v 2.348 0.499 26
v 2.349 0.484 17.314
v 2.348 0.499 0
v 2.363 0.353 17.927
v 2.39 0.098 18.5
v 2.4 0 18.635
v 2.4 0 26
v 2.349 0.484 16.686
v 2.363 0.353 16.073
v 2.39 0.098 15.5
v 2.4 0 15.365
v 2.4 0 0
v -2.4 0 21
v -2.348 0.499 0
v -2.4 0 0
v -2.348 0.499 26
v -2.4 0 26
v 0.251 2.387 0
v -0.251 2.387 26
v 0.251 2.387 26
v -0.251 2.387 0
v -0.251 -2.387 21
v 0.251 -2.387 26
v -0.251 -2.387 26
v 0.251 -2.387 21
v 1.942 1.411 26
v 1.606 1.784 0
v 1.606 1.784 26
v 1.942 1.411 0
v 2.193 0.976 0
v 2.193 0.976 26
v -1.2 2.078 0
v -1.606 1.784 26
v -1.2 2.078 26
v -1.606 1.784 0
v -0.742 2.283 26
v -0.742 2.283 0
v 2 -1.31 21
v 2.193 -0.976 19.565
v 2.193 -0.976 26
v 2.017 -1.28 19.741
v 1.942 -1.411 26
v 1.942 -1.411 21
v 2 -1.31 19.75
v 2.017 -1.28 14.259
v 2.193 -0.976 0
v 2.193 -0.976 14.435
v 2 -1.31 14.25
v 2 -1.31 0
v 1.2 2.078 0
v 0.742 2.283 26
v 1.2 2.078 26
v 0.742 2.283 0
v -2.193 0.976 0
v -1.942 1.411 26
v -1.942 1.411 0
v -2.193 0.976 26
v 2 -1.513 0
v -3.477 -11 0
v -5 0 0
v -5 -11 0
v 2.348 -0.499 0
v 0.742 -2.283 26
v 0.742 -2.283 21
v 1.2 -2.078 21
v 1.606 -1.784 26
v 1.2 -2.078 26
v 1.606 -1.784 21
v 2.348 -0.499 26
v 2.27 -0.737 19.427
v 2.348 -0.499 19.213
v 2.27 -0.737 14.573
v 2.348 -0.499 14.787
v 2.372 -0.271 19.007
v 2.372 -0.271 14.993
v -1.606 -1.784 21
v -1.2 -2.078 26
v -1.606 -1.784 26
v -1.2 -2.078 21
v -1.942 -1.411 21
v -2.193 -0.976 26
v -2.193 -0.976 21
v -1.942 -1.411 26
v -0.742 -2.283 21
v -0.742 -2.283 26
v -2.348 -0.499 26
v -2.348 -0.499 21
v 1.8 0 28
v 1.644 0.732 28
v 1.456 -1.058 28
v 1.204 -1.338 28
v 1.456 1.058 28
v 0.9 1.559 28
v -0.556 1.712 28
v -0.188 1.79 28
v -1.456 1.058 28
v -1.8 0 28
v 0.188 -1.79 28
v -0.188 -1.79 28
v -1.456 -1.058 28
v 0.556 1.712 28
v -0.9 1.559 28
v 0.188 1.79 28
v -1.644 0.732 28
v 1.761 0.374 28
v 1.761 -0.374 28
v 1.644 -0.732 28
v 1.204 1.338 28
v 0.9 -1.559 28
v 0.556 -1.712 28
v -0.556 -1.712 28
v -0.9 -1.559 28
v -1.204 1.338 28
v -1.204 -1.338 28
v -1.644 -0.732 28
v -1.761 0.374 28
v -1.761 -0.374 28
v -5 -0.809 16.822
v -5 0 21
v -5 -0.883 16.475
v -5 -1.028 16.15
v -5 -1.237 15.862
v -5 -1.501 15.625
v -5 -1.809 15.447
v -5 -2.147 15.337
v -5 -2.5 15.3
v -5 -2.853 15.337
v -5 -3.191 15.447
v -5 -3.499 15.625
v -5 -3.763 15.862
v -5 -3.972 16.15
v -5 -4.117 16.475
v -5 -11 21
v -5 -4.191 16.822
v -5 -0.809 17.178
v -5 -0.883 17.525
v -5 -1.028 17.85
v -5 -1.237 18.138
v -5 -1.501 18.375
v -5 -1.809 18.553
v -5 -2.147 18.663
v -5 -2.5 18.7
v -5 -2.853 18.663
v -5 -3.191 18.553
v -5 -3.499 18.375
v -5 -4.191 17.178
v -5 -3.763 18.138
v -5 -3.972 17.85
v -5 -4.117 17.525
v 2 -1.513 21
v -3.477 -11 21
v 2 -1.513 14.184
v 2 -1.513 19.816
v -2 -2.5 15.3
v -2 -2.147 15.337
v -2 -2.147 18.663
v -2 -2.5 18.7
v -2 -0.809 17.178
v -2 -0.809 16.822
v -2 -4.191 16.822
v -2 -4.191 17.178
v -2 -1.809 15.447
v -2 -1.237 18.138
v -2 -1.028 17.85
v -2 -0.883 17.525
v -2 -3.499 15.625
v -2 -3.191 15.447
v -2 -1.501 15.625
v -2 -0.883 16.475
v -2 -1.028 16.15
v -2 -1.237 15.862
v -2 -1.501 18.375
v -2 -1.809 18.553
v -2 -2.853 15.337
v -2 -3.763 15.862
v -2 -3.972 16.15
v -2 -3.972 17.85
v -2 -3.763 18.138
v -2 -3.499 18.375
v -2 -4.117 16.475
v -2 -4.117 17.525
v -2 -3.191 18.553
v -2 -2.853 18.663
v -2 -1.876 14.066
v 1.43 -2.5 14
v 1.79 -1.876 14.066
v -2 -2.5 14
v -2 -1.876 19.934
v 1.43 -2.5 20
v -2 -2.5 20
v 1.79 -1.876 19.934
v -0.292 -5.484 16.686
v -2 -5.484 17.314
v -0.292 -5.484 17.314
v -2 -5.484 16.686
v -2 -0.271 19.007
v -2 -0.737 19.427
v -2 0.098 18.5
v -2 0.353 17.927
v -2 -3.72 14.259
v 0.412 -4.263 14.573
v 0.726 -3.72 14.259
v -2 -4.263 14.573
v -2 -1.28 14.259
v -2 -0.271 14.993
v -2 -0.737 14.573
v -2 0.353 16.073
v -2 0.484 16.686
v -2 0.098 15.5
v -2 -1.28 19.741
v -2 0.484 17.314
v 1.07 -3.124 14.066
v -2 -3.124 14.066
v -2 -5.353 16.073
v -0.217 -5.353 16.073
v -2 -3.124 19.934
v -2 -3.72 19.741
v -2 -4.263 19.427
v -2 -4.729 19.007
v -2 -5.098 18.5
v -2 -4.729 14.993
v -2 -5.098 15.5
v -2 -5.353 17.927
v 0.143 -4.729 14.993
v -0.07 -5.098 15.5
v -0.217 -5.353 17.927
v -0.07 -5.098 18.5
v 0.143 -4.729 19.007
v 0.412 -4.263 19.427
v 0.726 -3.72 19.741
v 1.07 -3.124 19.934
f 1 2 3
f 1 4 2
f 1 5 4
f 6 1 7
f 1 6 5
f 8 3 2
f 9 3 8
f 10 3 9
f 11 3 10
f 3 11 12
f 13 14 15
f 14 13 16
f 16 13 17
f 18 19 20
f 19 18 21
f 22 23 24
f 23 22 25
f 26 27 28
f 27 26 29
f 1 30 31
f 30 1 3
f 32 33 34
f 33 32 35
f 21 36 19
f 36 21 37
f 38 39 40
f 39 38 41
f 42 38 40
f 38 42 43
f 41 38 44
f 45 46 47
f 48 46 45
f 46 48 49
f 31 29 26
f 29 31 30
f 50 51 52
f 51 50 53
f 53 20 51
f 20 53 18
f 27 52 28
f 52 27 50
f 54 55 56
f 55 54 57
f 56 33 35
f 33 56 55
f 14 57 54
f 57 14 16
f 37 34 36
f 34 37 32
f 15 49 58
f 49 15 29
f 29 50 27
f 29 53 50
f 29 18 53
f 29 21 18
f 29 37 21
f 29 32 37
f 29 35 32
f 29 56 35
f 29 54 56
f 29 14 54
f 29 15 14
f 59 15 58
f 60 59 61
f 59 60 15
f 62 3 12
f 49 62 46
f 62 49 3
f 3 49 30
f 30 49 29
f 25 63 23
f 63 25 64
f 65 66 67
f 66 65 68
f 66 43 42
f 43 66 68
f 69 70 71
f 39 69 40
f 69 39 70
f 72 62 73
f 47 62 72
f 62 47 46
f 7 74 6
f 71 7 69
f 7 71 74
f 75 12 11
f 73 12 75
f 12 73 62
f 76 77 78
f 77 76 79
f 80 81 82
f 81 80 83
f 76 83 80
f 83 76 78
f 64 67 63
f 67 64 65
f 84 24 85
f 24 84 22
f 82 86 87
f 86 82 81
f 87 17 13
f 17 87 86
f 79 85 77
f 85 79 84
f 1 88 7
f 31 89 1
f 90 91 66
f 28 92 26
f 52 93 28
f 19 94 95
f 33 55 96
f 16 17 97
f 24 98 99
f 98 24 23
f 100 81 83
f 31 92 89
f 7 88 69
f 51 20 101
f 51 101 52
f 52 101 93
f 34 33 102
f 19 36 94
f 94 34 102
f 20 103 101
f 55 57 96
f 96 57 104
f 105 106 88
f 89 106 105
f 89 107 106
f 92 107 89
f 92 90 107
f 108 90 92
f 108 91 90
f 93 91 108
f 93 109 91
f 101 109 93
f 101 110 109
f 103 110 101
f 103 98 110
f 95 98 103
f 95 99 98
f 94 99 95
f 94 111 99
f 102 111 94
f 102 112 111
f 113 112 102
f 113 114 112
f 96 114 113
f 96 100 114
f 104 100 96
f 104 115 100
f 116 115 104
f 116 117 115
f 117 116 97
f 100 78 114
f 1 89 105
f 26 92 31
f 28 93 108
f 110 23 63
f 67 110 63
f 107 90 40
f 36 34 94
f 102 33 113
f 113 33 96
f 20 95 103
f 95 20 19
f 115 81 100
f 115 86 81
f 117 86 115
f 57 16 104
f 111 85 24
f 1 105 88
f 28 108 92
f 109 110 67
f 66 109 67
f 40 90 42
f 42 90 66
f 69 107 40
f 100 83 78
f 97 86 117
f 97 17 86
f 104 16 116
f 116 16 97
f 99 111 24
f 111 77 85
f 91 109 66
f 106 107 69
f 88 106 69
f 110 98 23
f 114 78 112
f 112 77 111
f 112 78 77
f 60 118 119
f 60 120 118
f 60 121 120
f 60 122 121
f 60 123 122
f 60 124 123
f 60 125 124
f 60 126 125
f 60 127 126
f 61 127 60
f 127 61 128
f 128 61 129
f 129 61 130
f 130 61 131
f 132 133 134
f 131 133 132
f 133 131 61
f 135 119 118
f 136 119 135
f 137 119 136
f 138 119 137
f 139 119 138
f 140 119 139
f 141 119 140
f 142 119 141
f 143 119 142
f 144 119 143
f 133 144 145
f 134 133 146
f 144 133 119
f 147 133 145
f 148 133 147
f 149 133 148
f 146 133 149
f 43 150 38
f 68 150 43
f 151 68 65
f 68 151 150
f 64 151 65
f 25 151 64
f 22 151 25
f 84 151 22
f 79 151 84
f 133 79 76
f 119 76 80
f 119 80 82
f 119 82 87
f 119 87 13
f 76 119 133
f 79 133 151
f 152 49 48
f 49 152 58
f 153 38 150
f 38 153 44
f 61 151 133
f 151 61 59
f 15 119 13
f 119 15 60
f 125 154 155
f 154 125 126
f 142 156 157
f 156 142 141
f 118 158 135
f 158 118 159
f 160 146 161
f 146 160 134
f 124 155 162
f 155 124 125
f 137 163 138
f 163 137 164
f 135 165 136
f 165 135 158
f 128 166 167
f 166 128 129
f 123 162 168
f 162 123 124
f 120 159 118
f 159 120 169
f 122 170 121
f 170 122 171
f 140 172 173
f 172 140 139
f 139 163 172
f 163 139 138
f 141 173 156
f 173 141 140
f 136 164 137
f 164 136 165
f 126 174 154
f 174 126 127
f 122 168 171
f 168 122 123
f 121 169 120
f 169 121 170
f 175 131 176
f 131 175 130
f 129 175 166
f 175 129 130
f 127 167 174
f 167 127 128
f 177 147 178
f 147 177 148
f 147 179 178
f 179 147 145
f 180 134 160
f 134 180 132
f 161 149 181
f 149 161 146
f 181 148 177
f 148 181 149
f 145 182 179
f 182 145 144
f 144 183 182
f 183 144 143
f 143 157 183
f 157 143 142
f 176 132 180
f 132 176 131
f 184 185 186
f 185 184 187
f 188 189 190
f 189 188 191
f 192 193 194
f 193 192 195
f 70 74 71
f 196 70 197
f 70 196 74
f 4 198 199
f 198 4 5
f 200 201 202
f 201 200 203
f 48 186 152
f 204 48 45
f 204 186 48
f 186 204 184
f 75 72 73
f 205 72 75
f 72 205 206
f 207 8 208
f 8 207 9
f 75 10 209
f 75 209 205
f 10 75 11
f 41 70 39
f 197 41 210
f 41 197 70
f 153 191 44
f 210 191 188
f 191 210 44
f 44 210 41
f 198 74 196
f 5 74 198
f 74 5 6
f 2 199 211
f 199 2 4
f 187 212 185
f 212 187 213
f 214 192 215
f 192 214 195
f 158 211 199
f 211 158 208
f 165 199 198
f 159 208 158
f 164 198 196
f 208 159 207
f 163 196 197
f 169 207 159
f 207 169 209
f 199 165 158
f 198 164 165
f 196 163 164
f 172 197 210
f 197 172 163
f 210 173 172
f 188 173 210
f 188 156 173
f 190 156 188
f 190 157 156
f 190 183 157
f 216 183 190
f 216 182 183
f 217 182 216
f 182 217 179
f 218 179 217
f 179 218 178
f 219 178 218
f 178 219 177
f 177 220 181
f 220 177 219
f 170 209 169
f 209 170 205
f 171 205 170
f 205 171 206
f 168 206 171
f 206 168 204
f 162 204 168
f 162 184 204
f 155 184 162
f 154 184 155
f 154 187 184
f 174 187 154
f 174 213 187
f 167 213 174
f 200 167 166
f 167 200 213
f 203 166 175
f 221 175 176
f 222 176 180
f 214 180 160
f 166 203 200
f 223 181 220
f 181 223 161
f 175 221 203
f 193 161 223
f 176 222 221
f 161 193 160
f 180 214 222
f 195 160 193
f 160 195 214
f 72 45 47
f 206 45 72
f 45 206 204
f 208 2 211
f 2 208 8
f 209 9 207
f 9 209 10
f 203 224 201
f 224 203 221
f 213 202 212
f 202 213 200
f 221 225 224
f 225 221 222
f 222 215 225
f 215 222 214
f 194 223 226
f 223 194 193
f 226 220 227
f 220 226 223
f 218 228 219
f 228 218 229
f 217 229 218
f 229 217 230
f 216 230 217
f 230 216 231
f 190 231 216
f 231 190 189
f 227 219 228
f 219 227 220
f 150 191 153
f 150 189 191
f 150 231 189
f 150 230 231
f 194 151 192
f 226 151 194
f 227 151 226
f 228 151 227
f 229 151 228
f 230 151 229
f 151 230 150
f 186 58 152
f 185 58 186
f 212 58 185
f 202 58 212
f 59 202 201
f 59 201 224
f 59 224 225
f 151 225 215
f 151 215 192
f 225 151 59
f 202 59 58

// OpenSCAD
//Original Prusa

// PRUSA iteration3
// RAMBo cover hinges
// GNU GPL v3
// Josef Průša <iam@josefprusa.cz> and contributors
// http://www.reprap.org/wiki/Prusa_Mendel
// http://prusamendel.org

module upper_hinge()
{
difference()    
{
    union(){
     cylinder( h = 26, r = 2.4, $fn=30); 
     translate([0,0,26]) cylinder( h = 2, r1 = 2.4, r2 = 1.8, $fn=30); 
     translate( [ -5 , -11 , 0 ] ) cube( [ 7 , 11 , 21 ] );  
    }
     translate( [ -12.5 , -2.5 , 17 ] ) rotate( [0,90,0] ) cylinder( h = 20, r = 1.7, $fn=30);  
     translate( [ -2 , -2.5 , 17 ] ) rotate( [0,90,0] ) cylinder( h = 9, r = 3, $fn=30); 
     translate([-2.9,-20,-1]) rotate([0,0,60]) cube([25,5,26]);   
}
}

module lower_hinge()
{
difference()
{   
   union(){ 
    translate( [ 0 , 6 , 0 ] ) cylinder( h = 15, r = 2.4, $fn=30); 
    translate( [ 0 , 6 , 0 ] ) cylinder( h = 10, r = 2.8, $fn=30);  
    translate( [ 0 , 6 , 15 ] ) cylinder( h = 2, r1 = 2.4, r2=1.8, $fn=30);  
    translate( [ -5 , 6 , 0 ] ) cube( [ 7 , 11 , 10 ] ); 
   }
    translate( [ -1 , 8.5 , 4 ] ) rotate( [0,90,0] ) cylinder( h = 20, r = 3, $fn=30); 
    translate( [ -12 , 8.5 , 4 ] ) rotate( [0,90,0] ) cylinder( h = 20, r = 1.5, $fn=30); 
    translate([-5,20,-1]) rotate([0,0,-60]) cube([20,5,20]);   
}
}


upper_hinge();
//lower_hinge();
